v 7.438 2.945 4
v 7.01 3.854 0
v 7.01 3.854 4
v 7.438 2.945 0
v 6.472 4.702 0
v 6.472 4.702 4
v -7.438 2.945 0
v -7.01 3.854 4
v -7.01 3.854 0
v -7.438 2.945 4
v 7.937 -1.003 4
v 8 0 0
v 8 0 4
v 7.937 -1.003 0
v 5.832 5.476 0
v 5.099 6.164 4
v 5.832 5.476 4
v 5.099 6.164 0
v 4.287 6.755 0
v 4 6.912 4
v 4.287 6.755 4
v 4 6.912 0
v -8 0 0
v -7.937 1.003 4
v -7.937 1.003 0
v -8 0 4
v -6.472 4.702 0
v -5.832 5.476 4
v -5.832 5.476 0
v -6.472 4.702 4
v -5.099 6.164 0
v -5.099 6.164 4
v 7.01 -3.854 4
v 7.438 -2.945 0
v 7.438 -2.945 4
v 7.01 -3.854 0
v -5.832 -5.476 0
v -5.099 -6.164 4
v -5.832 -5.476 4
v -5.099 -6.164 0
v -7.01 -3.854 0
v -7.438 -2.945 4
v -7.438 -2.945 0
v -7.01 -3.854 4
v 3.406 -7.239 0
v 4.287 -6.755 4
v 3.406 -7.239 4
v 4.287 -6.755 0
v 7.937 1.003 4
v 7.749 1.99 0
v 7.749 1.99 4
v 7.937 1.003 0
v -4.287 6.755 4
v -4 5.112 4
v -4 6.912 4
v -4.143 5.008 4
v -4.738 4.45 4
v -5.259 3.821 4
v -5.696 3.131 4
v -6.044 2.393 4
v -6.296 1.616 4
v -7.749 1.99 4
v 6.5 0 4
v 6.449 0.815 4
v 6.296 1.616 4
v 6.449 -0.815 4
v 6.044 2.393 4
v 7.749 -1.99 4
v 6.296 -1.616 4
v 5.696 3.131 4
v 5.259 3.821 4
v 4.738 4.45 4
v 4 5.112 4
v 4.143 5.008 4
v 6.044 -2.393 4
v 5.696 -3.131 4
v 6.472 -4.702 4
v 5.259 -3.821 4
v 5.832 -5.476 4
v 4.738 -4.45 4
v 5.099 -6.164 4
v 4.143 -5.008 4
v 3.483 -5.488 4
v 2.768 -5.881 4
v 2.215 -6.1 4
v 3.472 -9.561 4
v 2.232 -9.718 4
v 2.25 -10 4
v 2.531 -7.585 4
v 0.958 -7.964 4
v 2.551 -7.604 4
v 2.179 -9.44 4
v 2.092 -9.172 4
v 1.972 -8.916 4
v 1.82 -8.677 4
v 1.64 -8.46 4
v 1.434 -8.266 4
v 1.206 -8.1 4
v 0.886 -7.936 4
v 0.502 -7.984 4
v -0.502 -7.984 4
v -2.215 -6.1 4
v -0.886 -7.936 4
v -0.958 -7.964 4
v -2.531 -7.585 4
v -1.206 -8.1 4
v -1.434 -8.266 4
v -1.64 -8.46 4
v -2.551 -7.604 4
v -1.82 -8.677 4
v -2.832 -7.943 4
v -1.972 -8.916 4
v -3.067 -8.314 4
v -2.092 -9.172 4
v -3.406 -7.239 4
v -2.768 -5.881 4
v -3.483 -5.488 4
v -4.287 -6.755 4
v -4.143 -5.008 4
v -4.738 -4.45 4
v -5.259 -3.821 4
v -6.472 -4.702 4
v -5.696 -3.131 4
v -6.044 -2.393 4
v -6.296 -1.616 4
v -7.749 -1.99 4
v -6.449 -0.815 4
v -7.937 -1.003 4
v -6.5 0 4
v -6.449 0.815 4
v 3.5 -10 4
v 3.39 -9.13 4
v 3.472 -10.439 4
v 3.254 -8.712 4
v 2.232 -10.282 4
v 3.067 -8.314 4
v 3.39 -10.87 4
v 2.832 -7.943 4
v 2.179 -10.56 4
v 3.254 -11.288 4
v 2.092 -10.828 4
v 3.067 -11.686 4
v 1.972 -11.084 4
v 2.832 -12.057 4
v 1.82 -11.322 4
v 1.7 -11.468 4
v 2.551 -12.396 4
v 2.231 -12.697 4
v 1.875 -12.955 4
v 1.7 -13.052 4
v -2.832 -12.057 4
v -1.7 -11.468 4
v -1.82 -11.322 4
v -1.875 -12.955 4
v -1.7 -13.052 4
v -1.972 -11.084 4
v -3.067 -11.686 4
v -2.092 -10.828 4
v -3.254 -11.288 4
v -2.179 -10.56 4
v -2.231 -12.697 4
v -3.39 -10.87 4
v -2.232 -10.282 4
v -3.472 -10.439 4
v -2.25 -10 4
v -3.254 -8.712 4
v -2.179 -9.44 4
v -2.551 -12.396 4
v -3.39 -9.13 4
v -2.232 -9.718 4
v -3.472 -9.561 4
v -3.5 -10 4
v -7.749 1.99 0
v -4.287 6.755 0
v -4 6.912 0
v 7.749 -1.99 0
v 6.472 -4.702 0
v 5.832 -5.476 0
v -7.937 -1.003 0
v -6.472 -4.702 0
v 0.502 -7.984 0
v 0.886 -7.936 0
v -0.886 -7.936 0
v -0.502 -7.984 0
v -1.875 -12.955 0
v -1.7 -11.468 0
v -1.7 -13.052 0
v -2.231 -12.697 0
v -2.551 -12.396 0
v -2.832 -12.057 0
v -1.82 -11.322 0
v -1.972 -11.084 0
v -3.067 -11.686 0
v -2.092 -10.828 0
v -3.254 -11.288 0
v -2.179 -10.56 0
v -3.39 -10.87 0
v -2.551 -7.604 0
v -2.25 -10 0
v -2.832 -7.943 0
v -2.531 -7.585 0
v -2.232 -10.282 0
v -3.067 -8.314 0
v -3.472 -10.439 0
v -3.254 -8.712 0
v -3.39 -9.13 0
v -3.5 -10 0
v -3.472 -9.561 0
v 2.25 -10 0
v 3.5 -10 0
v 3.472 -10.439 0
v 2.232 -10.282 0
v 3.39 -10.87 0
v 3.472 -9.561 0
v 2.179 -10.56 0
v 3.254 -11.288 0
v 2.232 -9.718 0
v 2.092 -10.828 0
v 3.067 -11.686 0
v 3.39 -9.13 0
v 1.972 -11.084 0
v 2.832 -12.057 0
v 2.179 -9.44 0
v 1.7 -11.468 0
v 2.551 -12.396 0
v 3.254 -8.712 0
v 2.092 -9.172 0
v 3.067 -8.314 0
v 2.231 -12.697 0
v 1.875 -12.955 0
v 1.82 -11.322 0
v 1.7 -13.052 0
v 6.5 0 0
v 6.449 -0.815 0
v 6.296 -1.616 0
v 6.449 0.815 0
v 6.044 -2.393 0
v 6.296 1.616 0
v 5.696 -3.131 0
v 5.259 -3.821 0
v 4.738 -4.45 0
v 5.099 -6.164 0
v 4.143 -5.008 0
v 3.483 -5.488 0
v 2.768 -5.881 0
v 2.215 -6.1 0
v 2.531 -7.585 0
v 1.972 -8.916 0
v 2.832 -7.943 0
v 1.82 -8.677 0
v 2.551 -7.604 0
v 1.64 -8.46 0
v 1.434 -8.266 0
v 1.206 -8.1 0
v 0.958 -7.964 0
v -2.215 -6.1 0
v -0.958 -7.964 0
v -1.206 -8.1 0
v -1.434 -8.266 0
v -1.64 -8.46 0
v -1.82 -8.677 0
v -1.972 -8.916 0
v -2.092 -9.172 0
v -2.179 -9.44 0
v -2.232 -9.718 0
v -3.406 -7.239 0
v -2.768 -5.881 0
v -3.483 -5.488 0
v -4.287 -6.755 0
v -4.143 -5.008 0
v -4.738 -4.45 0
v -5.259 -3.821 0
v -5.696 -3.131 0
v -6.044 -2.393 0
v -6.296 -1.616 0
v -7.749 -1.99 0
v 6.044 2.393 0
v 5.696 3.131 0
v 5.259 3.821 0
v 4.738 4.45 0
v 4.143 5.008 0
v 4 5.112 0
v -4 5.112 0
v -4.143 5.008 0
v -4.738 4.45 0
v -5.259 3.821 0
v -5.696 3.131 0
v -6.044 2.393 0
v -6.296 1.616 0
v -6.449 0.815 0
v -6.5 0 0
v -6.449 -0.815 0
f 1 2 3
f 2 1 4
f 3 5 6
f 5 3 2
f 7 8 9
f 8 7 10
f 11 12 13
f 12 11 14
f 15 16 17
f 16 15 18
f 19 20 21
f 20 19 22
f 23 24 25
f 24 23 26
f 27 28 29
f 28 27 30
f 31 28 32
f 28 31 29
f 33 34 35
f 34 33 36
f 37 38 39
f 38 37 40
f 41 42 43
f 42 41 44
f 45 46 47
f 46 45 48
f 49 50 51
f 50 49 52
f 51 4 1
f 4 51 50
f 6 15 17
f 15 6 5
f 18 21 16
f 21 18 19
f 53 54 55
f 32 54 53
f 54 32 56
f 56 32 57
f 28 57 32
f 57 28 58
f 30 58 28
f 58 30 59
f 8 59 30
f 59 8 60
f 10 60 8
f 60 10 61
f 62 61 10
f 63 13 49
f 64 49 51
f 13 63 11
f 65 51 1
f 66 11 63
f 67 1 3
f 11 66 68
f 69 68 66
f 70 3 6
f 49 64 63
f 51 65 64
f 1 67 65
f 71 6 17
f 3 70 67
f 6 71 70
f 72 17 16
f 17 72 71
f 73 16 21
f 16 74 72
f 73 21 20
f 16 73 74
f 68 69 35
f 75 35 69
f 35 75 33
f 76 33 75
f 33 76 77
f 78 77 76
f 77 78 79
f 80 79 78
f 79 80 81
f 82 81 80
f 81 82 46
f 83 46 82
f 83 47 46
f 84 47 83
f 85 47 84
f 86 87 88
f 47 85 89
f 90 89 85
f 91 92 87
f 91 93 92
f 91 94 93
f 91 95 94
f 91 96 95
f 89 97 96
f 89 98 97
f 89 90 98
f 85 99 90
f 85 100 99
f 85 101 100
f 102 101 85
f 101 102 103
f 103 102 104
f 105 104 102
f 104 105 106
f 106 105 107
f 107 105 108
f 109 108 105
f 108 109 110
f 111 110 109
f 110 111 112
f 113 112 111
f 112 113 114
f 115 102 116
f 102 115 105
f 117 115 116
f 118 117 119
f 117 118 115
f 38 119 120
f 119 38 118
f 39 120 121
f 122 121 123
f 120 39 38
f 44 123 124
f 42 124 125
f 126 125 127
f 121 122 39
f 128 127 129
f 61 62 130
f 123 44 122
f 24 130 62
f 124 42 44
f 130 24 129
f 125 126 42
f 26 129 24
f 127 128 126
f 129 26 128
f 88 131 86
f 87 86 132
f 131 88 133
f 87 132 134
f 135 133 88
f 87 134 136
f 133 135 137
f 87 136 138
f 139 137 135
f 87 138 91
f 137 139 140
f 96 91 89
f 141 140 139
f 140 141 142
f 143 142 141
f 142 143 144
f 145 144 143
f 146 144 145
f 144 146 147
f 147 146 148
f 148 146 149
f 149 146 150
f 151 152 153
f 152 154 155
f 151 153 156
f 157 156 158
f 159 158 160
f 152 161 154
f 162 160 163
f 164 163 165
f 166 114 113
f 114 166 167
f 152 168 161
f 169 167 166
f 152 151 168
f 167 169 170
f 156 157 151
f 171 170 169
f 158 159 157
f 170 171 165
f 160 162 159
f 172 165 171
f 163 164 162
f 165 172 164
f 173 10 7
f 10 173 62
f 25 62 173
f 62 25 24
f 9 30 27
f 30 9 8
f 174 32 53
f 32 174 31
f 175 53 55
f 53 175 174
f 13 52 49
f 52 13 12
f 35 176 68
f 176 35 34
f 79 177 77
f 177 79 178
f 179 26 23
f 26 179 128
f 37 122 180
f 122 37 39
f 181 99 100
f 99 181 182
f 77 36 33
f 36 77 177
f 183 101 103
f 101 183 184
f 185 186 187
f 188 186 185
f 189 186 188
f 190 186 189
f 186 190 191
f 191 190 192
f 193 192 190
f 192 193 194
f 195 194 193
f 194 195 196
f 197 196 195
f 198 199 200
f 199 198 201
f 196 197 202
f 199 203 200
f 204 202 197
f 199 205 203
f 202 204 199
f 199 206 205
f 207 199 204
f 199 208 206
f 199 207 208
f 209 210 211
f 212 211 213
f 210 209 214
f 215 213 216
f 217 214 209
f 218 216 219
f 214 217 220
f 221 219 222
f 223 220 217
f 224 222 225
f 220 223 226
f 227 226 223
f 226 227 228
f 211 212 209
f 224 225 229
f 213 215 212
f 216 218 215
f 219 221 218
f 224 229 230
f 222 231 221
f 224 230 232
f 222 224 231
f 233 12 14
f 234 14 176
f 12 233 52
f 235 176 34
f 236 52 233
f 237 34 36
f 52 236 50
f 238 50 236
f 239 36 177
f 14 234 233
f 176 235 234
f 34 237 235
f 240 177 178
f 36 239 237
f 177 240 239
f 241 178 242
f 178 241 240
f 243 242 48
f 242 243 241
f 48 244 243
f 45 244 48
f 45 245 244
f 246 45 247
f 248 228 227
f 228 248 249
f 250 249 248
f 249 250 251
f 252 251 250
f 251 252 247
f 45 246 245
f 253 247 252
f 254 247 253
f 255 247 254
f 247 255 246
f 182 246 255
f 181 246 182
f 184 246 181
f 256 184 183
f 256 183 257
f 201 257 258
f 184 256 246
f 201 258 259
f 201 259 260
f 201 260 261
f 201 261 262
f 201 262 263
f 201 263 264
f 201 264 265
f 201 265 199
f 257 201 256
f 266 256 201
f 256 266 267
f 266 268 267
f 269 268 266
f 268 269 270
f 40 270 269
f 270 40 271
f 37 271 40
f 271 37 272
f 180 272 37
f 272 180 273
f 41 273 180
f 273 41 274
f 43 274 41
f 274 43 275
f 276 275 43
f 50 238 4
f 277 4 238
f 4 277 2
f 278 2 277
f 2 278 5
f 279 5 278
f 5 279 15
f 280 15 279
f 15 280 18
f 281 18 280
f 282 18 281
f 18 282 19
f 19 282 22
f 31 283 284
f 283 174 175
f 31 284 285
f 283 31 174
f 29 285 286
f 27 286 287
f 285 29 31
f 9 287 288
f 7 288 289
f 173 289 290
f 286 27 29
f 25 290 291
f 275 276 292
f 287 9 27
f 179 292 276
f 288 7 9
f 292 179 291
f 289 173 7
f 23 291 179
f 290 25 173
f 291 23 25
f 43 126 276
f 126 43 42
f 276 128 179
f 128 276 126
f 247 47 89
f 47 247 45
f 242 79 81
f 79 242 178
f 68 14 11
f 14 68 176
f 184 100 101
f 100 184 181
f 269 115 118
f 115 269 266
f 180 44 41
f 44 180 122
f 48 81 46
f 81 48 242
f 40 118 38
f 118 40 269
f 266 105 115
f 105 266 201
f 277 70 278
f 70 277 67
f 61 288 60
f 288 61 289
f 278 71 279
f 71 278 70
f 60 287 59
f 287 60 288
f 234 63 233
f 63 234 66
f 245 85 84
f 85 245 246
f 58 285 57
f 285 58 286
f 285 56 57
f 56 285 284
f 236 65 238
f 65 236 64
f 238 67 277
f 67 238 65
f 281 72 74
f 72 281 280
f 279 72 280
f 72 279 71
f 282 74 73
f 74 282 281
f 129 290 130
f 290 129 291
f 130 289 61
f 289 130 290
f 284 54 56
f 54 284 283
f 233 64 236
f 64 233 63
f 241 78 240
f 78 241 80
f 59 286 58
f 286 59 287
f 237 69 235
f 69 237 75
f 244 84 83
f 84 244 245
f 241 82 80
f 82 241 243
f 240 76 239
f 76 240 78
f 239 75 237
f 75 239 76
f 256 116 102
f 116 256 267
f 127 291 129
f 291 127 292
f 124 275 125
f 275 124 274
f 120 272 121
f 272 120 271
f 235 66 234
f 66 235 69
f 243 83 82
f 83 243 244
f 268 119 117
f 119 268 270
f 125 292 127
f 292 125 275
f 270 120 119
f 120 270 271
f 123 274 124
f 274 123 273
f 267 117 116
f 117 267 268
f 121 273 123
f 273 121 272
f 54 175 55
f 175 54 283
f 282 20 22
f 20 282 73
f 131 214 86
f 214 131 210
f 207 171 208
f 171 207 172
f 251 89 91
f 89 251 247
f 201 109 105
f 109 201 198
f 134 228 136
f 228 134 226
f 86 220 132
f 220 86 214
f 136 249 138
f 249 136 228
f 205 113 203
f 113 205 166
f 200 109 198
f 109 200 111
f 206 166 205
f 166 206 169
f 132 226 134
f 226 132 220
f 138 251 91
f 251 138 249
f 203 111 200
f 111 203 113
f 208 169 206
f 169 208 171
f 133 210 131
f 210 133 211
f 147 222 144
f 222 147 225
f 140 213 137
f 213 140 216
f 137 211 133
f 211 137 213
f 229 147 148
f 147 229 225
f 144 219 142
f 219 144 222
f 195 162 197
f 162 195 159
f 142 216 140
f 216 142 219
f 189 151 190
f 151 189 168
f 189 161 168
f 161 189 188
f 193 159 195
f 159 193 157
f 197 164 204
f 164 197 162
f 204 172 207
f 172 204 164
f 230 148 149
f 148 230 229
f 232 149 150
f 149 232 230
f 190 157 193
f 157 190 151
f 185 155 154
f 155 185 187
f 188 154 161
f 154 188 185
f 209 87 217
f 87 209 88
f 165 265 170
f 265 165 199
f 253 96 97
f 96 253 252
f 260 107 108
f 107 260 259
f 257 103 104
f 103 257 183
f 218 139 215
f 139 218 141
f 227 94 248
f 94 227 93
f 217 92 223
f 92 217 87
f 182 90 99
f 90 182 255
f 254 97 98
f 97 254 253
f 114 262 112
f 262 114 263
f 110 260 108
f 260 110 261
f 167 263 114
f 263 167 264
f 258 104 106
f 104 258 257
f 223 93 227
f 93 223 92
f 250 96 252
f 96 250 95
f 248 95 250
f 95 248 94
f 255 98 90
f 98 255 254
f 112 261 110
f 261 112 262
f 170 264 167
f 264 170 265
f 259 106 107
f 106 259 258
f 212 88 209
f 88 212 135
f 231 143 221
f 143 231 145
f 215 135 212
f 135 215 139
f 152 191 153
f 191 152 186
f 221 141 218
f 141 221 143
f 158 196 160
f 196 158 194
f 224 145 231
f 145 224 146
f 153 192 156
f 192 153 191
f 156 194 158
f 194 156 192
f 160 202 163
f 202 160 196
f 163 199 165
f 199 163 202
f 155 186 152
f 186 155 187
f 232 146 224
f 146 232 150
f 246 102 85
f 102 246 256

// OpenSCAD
$fn=50;
difference(){
    cylinder(4,16/2,16/2);
    cylinder(4,13/2,13/2);
    //translate([0,7,0]) cylinder(4,11/2,11/2);
    translate([-4,3,0]) cube([8,6,4]);
}
difference(){
    translate([0,-10,0]) cylinder(4,7/2,7/2);
    translate([0,-10,0]) cylinder(4,4.5/2,4.5/2);
    //translate([0,-13,0]) cylinder(4,5/2,5/2);
    translate([-1.7,-16,0]) cube([3.4,7,4]);
}
translate([-2.5,-7.6,0]) cube([5,1.5,4]);
